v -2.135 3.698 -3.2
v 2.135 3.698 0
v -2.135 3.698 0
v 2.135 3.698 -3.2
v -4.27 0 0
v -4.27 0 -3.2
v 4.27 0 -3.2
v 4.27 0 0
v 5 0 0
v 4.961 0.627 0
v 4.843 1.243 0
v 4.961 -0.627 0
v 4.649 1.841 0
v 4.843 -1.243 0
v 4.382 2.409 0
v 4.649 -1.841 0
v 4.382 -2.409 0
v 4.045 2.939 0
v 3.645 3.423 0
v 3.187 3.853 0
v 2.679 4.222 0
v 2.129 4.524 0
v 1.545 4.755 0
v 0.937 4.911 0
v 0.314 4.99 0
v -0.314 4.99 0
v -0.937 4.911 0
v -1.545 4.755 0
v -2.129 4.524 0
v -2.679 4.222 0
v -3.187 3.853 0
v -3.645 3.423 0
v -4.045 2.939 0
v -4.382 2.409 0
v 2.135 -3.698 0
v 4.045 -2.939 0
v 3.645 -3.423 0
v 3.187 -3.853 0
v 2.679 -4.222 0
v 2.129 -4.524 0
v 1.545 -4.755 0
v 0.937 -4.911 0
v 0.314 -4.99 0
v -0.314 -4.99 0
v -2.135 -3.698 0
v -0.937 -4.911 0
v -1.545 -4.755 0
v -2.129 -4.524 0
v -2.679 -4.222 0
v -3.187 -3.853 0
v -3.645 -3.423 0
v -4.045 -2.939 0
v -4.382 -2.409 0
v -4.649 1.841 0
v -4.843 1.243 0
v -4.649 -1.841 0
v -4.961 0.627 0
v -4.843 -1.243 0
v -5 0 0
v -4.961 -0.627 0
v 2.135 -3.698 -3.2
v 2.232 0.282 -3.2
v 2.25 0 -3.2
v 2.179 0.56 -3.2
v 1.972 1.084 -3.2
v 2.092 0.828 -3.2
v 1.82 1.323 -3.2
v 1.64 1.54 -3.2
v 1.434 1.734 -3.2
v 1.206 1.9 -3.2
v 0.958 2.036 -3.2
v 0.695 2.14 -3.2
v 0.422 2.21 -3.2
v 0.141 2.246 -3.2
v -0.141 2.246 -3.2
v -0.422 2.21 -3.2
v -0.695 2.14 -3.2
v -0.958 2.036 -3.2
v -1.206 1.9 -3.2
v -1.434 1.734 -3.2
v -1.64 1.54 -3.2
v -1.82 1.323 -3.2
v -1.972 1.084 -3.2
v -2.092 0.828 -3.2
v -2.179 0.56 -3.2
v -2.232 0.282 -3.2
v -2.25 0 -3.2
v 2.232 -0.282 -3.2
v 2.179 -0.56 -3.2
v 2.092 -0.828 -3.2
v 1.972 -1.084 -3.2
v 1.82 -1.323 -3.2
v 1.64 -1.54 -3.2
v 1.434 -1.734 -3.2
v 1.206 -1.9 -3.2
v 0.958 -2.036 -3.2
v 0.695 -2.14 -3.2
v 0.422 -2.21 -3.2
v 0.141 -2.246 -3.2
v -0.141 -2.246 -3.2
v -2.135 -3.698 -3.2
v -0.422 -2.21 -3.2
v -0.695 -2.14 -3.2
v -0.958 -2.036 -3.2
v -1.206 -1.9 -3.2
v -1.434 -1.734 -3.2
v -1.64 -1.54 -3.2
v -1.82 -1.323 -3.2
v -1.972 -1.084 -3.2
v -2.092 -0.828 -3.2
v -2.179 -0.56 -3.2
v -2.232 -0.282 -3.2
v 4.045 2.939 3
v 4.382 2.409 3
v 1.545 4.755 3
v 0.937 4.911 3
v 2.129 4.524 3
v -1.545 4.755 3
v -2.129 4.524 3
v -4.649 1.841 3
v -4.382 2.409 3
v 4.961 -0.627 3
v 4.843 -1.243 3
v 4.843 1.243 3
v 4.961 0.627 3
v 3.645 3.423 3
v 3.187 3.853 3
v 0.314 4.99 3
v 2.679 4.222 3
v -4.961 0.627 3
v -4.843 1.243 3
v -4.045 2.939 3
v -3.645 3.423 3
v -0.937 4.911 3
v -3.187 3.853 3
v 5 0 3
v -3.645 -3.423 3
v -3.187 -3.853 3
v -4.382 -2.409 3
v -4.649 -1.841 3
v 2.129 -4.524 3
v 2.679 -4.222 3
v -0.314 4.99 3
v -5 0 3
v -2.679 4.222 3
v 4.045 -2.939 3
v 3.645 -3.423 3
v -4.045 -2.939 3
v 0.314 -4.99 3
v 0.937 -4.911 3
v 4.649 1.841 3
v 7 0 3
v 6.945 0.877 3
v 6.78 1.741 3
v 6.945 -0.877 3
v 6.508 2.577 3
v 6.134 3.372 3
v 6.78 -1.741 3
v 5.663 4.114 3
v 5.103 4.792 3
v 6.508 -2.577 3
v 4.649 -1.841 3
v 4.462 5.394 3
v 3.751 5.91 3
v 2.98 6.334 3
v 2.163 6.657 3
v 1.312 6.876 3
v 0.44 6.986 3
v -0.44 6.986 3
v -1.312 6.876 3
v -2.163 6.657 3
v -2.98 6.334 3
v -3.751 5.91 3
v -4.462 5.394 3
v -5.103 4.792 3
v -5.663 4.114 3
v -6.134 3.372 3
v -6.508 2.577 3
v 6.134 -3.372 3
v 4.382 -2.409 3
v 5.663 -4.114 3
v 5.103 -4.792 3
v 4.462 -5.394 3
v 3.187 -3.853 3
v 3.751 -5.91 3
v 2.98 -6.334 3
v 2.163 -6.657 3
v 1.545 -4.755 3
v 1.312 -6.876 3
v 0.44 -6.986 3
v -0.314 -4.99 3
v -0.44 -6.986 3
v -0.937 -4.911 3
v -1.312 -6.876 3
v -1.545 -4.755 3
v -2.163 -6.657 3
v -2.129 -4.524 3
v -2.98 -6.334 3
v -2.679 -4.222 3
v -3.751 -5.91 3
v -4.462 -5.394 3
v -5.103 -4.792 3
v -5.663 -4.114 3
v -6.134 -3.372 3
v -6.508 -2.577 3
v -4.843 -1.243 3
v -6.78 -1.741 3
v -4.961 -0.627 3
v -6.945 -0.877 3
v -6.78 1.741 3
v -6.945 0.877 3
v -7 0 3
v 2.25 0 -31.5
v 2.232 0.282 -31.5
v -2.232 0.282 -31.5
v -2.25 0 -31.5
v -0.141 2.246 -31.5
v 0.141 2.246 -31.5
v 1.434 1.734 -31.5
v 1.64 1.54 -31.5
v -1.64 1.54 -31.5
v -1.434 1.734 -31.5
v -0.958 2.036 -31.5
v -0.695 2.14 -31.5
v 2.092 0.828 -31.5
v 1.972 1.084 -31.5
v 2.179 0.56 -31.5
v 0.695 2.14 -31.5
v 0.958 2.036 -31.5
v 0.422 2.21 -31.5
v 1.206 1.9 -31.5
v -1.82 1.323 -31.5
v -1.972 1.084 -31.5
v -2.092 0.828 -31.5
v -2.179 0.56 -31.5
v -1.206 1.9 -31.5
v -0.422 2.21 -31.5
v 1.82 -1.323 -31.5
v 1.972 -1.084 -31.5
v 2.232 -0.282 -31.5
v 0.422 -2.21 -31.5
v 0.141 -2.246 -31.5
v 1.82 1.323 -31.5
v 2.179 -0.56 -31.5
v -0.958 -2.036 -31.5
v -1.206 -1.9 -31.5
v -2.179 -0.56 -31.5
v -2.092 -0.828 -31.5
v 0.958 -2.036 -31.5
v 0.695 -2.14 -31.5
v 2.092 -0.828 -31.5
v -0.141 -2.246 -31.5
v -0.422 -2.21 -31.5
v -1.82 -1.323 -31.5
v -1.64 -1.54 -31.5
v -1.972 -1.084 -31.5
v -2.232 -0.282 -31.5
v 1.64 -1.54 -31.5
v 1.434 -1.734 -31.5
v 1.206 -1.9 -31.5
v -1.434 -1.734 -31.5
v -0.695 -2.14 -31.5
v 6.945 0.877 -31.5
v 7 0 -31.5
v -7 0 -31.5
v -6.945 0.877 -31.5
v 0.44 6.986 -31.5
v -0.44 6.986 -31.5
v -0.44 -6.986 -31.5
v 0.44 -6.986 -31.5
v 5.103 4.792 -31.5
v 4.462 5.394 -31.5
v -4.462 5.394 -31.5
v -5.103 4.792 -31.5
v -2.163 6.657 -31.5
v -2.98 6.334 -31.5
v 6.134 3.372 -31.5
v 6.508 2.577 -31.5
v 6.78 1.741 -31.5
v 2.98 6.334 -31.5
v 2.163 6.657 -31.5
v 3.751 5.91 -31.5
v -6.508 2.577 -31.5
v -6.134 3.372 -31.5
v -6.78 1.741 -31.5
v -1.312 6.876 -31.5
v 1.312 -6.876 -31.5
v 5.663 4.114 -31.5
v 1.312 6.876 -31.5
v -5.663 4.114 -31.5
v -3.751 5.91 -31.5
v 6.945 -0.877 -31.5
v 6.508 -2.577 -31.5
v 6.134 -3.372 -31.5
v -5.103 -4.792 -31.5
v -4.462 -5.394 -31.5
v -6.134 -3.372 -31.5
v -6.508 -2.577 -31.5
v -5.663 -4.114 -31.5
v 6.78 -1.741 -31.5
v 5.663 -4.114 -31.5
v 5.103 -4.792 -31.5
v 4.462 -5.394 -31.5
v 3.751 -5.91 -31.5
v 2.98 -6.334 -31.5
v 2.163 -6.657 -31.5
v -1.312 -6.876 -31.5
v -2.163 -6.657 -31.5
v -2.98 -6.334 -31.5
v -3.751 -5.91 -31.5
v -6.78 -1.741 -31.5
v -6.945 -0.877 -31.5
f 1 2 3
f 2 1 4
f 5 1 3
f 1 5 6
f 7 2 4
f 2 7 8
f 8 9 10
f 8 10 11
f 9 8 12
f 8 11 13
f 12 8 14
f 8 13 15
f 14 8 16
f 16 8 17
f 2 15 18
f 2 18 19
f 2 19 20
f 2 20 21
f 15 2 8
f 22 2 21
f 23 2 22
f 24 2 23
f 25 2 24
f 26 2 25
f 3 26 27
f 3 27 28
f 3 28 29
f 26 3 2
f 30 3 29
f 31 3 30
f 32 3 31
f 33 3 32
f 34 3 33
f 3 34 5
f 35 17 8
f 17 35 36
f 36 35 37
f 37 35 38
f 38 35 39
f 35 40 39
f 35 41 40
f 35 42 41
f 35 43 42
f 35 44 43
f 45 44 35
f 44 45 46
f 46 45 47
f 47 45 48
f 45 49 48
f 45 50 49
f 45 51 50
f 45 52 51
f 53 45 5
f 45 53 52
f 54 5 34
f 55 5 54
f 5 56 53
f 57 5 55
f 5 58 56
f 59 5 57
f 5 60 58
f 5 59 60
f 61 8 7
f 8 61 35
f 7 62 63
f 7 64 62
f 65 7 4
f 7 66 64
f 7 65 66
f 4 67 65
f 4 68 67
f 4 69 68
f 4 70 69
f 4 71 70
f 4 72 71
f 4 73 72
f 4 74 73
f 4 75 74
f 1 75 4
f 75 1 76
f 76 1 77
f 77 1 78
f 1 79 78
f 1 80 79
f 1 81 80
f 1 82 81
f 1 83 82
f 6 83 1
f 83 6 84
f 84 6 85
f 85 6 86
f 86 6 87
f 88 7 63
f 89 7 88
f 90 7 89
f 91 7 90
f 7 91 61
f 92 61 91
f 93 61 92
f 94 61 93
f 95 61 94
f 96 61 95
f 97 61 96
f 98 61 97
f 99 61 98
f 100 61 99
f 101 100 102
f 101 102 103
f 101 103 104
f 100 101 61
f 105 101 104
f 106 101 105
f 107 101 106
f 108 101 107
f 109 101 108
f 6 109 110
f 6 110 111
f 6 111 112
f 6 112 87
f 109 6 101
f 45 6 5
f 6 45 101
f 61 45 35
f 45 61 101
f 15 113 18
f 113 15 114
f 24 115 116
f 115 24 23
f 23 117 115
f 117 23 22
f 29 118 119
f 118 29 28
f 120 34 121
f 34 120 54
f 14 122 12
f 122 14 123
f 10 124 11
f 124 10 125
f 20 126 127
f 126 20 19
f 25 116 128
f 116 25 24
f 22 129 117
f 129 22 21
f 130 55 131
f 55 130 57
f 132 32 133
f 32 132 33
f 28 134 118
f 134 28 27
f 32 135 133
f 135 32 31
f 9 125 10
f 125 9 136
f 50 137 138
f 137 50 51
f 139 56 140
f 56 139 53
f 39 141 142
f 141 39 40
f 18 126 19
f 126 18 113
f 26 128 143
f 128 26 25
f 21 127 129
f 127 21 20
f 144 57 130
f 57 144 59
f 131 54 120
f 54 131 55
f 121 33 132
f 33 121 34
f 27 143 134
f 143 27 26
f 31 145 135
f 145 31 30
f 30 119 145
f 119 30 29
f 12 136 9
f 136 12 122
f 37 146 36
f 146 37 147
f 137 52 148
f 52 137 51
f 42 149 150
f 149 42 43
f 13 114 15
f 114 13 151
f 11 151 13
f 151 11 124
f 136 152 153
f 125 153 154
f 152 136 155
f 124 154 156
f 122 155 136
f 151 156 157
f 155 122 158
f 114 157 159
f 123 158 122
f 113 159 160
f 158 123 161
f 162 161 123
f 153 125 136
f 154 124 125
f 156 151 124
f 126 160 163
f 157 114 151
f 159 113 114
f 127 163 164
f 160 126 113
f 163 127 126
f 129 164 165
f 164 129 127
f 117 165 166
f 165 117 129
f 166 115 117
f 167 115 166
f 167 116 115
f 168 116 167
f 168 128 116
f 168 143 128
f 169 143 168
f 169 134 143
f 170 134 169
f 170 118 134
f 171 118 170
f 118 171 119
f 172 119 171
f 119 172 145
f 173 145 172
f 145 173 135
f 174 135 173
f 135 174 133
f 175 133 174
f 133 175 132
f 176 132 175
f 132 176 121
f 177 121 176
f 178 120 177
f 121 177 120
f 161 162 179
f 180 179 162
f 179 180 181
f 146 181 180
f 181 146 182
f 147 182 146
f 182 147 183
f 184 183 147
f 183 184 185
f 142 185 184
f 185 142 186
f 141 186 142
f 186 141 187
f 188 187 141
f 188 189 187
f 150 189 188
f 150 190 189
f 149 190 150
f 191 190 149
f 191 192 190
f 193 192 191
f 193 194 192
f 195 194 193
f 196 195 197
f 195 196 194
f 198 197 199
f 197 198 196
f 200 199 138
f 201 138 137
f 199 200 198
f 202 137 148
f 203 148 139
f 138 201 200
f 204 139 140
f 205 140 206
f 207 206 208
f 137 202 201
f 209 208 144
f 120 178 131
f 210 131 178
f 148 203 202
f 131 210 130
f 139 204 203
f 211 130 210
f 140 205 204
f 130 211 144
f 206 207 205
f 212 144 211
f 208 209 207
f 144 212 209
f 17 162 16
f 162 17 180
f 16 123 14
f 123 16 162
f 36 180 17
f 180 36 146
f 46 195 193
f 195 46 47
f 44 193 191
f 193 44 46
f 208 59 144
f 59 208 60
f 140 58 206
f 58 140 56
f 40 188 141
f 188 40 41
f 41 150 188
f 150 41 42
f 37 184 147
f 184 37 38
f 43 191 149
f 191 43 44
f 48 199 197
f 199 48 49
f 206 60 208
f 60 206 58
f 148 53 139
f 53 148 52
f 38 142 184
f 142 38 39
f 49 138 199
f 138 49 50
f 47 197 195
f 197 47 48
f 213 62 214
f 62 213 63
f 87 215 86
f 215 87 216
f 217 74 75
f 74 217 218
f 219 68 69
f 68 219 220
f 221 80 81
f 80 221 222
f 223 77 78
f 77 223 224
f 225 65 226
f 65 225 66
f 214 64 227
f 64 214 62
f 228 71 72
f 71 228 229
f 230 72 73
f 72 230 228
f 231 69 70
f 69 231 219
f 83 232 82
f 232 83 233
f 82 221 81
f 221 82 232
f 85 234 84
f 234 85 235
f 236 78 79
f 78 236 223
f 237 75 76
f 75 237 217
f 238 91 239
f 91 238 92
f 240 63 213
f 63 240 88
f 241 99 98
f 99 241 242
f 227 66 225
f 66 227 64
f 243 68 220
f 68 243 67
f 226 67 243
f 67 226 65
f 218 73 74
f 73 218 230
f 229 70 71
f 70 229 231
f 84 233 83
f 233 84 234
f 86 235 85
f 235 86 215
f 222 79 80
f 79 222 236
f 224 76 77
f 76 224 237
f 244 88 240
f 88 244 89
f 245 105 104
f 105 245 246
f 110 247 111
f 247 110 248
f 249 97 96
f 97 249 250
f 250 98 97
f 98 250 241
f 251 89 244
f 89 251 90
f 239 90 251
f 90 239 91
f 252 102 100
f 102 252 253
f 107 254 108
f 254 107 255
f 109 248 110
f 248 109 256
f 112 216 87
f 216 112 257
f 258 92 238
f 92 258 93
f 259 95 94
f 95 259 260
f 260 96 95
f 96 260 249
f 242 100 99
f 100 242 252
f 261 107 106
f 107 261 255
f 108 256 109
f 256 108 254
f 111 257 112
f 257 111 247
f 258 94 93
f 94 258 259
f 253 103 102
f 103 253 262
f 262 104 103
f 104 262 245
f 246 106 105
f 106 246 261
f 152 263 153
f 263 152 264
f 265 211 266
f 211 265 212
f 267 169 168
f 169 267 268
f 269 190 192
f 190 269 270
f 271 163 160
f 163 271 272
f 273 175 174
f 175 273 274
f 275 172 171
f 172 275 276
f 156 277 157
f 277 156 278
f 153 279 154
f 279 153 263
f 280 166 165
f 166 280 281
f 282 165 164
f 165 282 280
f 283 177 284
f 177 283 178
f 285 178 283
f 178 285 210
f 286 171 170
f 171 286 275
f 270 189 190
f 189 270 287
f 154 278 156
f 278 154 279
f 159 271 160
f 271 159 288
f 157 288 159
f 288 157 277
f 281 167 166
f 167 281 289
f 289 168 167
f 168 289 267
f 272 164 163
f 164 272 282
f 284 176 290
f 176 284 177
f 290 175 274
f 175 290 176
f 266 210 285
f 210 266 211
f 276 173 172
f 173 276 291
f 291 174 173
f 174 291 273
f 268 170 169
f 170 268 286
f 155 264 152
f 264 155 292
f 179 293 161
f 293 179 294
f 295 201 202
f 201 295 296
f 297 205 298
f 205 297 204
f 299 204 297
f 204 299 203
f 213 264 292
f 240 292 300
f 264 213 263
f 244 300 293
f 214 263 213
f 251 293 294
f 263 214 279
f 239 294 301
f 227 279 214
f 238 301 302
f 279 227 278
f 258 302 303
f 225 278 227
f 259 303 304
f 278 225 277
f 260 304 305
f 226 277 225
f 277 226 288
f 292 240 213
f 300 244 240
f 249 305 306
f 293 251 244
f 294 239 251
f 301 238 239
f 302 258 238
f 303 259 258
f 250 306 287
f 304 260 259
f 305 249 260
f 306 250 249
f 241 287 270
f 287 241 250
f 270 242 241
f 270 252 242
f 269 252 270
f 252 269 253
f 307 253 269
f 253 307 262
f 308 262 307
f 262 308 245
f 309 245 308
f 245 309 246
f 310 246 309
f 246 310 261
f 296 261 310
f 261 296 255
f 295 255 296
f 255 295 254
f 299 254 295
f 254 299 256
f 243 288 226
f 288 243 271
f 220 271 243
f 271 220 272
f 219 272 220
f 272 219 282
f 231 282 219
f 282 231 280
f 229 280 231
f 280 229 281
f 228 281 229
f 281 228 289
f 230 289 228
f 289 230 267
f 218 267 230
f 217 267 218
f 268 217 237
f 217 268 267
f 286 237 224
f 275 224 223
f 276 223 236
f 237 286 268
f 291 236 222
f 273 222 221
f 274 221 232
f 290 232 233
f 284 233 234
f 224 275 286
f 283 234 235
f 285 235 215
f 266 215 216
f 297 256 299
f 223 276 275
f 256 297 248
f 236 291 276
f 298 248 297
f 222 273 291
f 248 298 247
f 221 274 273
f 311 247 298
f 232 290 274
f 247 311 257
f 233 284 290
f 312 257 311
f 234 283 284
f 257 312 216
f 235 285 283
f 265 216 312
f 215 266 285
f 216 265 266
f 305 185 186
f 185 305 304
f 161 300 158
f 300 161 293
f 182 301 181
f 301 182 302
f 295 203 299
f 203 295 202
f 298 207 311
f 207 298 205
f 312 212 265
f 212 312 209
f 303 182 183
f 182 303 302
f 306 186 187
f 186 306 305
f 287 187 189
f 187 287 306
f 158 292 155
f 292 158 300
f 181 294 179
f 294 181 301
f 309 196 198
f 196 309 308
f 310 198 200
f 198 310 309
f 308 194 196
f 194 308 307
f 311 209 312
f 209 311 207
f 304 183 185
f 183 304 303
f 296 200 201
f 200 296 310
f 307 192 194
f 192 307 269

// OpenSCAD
$fn = 50;


difference() {
	union() {
		translate(v = [0, 0, -31.5000000000]) {
			cylinder(h = 34.5000000000, r = 7.0000000000);
		}
	}
	union() {
		translate(v = [0, 0, 0]) {
			rotate(a = [0, 0, 0]) {
				difference() {
					union() {
						translate(v = [0, 0, -3.2000000000]) {
							linear_extrude(height = 3.2000000000) {
								polygon(points = [[4.2698000000, 0.0000000000], [2.1349000000, 3.6977552691], [-2.1349000000, 3.6977552691], [-4.2698000000, 0.0000000000], [-2.1349000000, -3.6977552691], [2.1349000000, -3.6977552691]]);
							}
						}
					}
					union();
				}
			}
		}
		#cylinder(h = 3, r = 5.0000000000);
		#translate(v = [0, 0, -100.0000000000]) {
			cylinder(h = 200, r = 2.2500000000);
		}
	}
}
